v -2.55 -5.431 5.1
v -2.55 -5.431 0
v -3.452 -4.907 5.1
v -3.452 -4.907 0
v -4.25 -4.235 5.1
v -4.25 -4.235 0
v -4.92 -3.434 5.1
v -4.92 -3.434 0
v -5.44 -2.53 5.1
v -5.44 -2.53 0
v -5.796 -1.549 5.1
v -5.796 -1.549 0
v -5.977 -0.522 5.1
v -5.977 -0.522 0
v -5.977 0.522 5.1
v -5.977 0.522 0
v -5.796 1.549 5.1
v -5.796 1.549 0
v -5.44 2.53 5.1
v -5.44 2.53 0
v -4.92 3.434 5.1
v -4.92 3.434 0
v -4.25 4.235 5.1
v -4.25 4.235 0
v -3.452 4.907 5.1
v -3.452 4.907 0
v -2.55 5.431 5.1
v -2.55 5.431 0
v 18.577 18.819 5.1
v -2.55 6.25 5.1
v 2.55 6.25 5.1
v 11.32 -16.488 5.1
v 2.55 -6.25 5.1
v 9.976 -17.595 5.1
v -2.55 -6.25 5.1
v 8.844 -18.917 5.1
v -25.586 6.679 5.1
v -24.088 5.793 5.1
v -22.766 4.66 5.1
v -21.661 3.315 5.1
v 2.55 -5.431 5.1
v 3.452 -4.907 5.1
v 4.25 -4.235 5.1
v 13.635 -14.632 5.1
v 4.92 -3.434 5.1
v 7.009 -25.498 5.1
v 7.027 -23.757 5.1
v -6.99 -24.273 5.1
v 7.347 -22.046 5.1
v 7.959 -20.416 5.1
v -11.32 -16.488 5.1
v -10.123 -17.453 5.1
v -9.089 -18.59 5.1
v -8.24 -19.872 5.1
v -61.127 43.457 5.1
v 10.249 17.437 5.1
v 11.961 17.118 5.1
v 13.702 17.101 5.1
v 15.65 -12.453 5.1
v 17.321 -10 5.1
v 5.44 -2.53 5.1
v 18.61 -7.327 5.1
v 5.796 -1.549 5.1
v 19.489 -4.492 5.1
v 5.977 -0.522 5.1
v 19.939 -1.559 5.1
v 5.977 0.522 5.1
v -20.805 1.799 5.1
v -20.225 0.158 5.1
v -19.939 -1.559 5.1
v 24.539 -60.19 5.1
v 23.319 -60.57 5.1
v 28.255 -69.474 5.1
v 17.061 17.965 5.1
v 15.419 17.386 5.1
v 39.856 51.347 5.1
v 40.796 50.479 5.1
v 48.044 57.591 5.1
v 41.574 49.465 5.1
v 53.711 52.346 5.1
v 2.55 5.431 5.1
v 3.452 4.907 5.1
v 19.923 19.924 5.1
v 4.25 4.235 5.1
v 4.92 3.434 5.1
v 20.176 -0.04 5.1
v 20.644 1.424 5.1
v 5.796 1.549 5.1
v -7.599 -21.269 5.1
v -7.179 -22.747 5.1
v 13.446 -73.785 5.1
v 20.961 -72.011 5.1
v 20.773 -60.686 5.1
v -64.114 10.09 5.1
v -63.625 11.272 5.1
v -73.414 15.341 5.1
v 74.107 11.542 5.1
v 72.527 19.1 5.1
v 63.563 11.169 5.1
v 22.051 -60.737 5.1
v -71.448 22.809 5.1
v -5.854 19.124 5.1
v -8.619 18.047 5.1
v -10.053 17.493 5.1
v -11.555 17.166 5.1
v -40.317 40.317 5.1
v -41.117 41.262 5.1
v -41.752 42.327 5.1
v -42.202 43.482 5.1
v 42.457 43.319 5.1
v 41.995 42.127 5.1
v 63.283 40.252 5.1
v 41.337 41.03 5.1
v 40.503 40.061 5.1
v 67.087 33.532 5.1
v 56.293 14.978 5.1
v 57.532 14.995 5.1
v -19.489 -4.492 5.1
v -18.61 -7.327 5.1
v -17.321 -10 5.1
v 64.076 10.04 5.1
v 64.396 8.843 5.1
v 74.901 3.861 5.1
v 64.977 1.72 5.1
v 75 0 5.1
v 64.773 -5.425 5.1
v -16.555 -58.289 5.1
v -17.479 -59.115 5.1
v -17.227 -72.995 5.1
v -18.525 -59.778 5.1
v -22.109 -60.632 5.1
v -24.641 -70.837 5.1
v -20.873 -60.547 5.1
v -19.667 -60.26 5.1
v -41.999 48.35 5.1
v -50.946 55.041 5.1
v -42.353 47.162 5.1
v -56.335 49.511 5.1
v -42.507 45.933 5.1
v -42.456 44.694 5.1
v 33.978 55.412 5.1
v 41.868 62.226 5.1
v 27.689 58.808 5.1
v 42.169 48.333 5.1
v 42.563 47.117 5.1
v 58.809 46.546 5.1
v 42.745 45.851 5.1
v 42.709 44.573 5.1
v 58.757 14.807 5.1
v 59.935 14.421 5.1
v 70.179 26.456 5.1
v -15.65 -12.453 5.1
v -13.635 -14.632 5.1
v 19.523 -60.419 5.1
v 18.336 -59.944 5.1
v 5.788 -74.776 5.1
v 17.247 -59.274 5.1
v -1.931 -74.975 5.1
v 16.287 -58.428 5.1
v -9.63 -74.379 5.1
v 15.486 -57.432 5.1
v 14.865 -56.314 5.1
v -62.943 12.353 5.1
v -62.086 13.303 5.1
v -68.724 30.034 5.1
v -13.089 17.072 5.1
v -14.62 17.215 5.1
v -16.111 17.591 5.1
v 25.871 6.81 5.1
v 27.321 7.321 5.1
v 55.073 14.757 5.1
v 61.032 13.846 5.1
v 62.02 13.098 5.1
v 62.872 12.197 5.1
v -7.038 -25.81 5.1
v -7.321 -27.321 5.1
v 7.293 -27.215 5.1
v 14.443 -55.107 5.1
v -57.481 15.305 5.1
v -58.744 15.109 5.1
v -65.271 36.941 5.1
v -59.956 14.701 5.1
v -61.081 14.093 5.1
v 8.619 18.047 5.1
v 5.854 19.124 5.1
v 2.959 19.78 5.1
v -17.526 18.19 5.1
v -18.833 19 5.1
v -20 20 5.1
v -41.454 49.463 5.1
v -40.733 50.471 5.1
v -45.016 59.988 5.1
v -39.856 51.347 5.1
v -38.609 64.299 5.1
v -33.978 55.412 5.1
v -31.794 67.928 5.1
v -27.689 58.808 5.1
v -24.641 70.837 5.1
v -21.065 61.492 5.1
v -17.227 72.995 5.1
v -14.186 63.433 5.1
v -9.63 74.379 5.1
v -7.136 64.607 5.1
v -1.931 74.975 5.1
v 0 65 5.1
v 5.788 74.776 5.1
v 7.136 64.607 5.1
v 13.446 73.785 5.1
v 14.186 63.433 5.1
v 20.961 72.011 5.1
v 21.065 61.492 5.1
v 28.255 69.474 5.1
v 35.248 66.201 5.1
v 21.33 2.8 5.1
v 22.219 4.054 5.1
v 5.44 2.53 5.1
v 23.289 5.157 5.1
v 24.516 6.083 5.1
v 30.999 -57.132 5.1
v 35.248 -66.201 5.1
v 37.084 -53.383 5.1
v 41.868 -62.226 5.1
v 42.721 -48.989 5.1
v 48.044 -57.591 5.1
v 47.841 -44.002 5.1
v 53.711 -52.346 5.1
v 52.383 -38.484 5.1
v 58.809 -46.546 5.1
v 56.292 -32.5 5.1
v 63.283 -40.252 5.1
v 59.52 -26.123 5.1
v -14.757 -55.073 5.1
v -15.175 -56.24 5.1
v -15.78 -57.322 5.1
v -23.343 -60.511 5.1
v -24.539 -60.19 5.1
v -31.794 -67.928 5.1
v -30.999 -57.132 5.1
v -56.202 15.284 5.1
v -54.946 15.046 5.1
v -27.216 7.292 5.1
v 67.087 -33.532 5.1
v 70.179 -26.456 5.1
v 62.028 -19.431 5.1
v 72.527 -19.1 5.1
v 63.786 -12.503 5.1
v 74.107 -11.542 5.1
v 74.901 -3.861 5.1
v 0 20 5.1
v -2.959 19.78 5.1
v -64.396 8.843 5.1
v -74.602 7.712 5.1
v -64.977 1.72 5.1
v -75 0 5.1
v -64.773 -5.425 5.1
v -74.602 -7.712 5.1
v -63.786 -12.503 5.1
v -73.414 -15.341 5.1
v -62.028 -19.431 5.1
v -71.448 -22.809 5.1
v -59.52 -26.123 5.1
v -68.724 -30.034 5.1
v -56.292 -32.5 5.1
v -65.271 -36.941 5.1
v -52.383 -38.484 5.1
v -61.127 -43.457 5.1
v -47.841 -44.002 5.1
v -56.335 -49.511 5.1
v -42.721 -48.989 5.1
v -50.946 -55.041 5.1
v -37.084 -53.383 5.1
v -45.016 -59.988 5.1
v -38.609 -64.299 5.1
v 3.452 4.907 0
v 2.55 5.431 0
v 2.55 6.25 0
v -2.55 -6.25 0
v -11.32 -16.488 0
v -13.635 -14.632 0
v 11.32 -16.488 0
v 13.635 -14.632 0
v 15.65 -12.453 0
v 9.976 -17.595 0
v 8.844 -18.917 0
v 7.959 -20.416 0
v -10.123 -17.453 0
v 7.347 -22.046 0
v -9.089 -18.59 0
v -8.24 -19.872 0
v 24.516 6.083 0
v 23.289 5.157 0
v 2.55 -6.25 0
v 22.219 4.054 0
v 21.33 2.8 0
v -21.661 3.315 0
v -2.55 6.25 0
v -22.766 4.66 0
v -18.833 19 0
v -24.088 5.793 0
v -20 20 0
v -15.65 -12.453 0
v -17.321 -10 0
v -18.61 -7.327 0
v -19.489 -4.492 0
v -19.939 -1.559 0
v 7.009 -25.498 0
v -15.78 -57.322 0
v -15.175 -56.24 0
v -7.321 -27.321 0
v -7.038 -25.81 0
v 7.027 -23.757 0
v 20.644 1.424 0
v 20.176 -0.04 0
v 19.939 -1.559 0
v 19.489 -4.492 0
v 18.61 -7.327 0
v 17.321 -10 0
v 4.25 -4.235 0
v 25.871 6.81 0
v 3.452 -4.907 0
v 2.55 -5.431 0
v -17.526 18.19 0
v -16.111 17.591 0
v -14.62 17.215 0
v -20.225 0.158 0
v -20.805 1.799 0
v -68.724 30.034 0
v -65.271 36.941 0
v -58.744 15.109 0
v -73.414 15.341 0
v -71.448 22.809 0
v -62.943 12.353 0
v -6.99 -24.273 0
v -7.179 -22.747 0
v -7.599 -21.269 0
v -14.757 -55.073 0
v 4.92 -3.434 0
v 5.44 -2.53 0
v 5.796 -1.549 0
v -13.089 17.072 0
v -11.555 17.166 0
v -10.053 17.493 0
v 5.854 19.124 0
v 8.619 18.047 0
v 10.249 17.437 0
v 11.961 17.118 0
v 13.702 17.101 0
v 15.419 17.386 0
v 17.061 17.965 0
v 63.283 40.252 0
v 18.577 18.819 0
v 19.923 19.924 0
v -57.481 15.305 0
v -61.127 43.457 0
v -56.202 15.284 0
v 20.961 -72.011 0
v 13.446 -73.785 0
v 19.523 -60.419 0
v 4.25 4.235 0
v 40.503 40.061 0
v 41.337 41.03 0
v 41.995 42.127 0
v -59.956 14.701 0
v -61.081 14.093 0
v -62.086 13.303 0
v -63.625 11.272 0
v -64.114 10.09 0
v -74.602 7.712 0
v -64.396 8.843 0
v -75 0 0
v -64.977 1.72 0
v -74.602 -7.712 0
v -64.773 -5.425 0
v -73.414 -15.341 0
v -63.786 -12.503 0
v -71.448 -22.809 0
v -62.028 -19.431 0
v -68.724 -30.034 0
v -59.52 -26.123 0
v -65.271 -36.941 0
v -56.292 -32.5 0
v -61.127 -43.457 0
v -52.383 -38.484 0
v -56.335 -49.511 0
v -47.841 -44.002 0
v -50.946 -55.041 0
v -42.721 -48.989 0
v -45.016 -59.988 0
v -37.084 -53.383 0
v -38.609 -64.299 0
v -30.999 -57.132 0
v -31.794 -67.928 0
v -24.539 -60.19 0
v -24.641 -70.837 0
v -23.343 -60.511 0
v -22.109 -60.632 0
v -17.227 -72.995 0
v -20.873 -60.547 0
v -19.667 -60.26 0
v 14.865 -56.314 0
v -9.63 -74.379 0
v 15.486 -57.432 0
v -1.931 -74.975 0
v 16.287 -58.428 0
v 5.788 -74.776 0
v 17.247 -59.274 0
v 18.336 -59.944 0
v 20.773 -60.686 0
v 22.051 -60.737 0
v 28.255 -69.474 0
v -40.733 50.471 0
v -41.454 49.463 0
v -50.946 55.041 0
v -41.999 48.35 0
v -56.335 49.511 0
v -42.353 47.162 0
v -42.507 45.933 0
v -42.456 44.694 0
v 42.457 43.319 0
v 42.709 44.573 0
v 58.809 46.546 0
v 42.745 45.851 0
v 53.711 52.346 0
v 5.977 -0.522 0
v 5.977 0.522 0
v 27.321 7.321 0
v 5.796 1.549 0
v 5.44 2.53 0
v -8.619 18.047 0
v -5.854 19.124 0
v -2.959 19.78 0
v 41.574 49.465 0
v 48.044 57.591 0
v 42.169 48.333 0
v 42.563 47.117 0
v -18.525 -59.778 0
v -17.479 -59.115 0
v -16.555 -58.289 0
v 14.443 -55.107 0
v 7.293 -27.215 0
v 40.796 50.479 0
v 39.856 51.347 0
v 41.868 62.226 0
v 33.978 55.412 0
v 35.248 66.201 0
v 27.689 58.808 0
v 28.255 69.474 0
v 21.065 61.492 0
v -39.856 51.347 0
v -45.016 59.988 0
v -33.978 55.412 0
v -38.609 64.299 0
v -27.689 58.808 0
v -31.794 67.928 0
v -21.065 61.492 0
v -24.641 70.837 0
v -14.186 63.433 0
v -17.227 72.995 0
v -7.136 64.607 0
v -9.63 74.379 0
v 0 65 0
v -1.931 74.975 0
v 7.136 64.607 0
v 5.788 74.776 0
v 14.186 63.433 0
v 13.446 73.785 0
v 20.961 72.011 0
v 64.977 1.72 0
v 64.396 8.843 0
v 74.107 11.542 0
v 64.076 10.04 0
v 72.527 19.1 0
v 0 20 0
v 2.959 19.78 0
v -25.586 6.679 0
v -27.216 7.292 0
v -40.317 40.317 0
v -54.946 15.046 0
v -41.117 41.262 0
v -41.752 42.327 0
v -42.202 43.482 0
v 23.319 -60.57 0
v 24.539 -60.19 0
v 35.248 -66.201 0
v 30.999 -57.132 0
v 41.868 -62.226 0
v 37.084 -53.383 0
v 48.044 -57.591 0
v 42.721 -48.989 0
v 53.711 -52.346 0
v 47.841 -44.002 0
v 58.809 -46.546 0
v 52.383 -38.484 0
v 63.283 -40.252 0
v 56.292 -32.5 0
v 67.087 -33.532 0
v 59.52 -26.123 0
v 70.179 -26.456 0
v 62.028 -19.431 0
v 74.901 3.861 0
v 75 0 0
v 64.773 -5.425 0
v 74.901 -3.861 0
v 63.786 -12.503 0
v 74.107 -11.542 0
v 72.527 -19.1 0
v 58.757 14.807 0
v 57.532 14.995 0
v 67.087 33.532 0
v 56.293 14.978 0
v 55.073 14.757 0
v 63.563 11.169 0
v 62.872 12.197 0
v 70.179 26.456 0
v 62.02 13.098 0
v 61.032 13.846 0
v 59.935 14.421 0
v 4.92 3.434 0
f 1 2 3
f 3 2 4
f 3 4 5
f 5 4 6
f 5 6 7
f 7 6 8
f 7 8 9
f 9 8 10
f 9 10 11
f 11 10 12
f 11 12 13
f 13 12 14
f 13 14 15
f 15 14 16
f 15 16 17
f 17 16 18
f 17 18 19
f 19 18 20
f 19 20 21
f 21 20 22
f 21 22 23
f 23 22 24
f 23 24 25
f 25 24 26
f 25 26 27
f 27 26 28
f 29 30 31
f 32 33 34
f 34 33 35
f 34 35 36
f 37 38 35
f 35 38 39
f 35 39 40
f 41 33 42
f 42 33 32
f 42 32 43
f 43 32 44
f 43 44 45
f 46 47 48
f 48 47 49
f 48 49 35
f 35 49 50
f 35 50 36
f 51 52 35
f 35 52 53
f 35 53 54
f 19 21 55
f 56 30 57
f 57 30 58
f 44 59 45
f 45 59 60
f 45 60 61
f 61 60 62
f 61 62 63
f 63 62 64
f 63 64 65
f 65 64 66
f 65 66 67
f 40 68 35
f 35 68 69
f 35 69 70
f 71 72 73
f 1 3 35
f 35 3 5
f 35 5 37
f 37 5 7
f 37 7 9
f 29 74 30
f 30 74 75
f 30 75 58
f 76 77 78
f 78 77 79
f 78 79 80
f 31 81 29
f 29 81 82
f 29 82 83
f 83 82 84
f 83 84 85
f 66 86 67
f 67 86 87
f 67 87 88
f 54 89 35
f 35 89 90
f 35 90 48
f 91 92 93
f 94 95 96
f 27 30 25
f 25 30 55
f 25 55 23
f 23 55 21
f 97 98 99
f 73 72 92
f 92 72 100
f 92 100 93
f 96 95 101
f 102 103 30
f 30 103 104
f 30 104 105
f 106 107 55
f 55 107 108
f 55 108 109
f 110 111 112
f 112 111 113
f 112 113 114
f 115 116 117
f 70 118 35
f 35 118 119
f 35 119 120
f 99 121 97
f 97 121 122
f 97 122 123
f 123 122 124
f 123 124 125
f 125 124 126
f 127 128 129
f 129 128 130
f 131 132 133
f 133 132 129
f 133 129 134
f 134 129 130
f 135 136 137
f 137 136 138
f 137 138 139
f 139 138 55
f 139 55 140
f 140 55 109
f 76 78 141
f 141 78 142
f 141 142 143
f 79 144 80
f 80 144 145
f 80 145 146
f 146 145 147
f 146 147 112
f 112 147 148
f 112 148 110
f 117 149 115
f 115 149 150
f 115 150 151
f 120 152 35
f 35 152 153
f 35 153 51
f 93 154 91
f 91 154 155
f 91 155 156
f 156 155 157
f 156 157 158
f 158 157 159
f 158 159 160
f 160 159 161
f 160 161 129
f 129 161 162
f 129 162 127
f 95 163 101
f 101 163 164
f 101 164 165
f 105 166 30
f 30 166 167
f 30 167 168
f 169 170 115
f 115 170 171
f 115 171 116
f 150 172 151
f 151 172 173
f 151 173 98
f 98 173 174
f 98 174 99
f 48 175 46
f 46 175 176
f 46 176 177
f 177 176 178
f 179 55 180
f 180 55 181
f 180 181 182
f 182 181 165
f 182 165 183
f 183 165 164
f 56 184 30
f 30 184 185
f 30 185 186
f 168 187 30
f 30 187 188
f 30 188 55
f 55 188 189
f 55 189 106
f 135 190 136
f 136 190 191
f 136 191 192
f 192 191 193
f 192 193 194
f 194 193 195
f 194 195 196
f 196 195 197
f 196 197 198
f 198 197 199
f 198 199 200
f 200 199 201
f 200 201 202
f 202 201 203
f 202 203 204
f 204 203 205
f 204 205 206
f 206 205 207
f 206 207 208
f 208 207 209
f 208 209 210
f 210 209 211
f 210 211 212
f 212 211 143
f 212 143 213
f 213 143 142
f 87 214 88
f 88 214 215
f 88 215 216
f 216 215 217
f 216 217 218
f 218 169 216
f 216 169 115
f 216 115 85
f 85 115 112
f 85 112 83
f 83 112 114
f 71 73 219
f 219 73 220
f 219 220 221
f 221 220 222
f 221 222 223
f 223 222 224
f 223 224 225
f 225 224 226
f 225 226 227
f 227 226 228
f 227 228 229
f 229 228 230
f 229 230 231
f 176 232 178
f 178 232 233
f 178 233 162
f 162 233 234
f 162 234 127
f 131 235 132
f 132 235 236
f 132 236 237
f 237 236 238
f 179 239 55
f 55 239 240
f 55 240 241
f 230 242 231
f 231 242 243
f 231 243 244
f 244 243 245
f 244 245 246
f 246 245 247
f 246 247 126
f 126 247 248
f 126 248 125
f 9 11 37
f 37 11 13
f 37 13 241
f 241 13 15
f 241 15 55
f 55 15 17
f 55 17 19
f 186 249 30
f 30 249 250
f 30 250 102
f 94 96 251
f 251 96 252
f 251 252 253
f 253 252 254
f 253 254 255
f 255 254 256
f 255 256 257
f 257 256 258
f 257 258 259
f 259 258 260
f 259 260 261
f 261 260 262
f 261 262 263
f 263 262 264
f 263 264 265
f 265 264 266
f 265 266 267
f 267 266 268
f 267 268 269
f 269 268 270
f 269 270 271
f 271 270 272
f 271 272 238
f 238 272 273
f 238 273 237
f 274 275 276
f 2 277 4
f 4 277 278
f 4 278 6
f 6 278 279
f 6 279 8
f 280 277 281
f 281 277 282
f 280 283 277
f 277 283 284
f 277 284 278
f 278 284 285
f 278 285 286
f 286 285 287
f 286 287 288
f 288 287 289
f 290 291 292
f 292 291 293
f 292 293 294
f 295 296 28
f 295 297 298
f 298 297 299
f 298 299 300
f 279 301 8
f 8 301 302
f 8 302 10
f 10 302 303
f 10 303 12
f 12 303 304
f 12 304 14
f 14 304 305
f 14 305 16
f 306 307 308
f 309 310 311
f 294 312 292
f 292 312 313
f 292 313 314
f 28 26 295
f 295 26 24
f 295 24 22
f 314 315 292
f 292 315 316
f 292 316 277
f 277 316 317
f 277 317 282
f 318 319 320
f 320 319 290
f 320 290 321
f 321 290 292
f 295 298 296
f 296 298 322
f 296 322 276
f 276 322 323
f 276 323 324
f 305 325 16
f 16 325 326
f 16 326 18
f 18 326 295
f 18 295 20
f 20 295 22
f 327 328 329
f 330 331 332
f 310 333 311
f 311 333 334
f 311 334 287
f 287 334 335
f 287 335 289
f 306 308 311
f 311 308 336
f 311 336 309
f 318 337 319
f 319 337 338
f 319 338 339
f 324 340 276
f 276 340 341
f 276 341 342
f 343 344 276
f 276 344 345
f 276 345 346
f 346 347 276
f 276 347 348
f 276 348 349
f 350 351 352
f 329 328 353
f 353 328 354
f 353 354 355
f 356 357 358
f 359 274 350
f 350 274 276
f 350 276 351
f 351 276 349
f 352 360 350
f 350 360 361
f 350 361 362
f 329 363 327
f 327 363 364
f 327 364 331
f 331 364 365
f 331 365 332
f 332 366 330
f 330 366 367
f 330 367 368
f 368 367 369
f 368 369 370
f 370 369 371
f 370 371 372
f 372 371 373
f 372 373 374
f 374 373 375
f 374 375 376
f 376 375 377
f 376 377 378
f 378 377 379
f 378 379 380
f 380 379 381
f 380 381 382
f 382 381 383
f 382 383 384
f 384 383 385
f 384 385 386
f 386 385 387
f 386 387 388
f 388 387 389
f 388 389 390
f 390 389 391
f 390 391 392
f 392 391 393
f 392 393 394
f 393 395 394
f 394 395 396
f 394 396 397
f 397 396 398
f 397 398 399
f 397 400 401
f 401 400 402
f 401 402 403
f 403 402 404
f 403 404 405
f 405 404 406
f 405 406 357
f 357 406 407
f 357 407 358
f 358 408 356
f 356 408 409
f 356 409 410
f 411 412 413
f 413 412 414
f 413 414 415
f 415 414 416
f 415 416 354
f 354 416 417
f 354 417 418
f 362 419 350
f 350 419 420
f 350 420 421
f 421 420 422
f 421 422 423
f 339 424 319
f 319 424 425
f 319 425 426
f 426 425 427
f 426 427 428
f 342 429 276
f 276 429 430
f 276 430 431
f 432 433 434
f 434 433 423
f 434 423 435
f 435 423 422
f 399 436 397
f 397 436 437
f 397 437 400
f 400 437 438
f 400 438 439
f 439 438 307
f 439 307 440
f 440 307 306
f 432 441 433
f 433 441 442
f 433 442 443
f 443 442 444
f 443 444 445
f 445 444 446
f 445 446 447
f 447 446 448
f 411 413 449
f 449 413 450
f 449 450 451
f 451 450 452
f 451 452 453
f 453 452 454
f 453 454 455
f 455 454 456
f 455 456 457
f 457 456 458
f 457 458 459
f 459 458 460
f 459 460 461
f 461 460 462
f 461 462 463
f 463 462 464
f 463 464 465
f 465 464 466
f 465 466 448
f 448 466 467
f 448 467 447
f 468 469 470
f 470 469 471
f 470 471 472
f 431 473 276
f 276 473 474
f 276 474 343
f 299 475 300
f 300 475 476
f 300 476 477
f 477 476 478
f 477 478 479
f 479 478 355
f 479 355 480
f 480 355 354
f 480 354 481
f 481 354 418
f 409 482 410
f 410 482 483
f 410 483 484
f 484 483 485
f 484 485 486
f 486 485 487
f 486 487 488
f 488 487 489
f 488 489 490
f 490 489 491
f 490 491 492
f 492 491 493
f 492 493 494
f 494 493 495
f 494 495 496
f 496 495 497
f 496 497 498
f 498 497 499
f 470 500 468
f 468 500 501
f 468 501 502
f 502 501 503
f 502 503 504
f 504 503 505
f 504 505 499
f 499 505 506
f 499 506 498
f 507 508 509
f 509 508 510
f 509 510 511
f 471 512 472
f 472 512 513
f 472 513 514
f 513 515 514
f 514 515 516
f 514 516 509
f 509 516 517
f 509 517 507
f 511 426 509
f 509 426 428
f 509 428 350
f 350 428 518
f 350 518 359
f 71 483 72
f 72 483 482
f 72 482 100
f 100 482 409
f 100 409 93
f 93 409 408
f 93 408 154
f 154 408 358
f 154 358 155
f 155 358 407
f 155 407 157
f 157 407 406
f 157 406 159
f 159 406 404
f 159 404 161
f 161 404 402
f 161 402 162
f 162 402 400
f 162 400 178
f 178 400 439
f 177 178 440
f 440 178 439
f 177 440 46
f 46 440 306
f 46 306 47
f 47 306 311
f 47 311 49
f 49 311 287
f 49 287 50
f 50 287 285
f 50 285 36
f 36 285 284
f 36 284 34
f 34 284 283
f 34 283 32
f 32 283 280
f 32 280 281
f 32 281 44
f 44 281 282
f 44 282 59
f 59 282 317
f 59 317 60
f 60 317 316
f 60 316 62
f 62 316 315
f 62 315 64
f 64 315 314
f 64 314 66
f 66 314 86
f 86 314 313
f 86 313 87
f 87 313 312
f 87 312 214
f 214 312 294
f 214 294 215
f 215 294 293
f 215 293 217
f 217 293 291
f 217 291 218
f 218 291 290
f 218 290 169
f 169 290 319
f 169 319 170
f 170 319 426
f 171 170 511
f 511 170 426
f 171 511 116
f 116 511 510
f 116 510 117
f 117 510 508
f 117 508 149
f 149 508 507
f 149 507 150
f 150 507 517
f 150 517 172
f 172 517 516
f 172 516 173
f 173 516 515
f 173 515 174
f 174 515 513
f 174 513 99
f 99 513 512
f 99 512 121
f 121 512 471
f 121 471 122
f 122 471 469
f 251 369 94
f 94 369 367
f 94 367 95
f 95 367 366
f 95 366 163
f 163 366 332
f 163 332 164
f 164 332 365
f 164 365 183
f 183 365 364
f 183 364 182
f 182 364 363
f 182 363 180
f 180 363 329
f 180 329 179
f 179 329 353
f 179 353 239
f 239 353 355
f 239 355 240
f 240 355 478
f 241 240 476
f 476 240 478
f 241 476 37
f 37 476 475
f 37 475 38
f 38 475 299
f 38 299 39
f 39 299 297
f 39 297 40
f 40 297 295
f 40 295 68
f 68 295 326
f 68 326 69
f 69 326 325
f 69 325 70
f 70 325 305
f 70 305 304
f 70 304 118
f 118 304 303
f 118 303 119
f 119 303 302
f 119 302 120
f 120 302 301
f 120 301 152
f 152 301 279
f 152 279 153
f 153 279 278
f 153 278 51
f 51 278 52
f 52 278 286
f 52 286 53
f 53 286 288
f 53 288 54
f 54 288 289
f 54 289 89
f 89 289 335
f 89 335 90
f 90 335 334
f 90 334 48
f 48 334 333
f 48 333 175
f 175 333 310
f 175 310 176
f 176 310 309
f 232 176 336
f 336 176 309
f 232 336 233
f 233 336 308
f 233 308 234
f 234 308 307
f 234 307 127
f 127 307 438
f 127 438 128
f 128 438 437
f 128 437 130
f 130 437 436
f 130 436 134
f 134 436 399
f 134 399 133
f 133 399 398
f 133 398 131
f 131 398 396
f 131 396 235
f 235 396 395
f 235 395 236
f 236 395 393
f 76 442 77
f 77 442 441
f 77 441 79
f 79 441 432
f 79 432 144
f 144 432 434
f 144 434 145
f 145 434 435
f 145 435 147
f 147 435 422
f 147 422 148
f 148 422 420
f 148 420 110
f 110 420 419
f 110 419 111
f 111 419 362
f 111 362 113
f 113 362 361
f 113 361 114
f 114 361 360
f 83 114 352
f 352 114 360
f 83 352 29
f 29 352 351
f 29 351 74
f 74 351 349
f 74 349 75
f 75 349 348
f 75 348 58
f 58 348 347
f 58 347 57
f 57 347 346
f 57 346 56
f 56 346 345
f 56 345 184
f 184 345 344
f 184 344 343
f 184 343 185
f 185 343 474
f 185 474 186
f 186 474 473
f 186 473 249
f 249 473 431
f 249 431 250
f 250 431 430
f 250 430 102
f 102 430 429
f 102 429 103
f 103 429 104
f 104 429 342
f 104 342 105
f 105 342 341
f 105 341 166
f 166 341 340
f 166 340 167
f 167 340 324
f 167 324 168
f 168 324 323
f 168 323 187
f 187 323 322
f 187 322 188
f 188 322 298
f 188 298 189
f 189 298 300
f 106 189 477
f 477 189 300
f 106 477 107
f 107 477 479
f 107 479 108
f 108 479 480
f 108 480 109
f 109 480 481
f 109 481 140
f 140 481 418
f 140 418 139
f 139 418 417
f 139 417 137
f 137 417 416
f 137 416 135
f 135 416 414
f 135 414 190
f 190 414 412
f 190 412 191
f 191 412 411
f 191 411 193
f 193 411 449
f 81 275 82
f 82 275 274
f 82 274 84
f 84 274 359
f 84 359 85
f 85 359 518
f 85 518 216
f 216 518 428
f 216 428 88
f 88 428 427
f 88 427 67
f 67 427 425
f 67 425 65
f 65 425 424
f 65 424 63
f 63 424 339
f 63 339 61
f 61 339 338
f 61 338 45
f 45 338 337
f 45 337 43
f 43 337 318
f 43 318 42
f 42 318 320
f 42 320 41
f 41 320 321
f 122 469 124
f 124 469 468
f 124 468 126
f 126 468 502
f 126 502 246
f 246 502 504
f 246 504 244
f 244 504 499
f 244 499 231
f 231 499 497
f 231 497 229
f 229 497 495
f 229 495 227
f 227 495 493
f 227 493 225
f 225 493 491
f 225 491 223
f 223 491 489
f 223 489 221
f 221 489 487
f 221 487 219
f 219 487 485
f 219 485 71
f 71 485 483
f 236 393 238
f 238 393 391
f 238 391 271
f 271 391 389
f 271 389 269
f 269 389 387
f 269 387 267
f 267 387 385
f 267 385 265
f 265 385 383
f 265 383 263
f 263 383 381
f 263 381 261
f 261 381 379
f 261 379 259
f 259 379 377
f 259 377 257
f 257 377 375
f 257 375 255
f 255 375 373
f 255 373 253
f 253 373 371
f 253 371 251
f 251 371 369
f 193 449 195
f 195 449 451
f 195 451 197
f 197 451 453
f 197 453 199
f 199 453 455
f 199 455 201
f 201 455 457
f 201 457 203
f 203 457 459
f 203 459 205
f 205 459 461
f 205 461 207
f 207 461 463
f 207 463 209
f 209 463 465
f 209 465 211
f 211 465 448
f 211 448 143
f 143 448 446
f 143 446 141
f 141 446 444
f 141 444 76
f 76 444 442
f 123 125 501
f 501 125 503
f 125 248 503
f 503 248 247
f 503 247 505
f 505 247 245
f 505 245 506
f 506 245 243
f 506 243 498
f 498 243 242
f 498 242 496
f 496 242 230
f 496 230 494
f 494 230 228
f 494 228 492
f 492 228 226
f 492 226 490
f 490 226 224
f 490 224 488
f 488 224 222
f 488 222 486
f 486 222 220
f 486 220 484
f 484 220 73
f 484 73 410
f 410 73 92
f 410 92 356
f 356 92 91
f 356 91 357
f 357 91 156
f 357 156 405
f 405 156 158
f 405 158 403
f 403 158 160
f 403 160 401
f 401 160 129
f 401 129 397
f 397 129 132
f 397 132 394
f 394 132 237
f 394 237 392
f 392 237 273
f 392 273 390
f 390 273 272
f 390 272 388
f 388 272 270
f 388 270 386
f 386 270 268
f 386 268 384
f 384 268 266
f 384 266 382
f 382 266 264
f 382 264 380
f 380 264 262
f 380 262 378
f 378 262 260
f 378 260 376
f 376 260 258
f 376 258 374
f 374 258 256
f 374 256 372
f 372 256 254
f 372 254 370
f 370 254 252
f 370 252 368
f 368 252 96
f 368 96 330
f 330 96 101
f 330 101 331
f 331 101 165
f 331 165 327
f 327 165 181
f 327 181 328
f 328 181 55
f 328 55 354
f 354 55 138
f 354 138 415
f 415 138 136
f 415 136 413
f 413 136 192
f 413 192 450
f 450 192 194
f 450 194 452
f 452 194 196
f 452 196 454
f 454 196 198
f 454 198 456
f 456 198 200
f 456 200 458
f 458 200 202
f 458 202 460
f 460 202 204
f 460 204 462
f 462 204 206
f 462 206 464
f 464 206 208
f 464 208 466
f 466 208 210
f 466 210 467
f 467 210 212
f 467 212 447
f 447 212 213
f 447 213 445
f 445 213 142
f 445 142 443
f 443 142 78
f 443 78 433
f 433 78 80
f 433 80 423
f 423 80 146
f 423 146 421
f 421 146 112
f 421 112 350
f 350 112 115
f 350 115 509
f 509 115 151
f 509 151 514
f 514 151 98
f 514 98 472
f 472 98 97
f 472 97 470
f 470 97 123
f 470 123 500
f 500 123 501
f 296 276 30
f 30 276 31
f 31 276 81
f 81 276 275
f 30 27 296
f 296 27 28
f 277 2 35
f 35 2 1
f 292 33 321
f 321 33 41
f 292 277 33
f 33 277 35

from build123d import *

# Parameters (mm, degrees)
SKETCH1_R          = 75
SKETCH1_R_2        = 6
EXTRUSION1_DEPTH   = 5.1
CUT_EXTRUDE1_DEPTH = 107.188558706


with BuildPart() as part:
    # Sketch1 → Extrusion1 (new body)
    with BuildSketch(Plane.XY):
        Circle(SKETCH1_R)
        Circle(SKETCH1_R_2, mode=Mode.SUBTRACT)
        with BuildLine():
            ThreePointArc((40.502817464, 40.06150101), (42.745132776, 45.851099569), (39.856206804, 51.346691998))
            ThreePointArc((39.856206804, 51.346691998), (0, 65), (-39.856206804, 51.346691998))
            ThreePointArc((-39.856206804, 51.346691998), (-42.506769406, 45.932667816), (-40.316594862, 40.316594862))
            Line((-40.316594862, 40.316594862), (-20, 20))
            ThreePointArc((-20, 20), (-14.619951975, 17.215082215), (-8.619288125, 18.047378541))
            ThreePointArc((-8.619288125, 18.047378541), (0, 20), (8.619288125, 18.047378541))
            ThreePointArc((8.619288125, 18.047378541), (14.566416982, 17.206046598), (19.922803859, 19.923637571))
            Line((19.922803859, 19.923637571), (40.502817464, 40.06150101))
        make_face(mode=Mode.SUBTRACT)
        with BuildLine():
            ThreePointArc((-54.945686321, 15.045718344), (-61.080783406, 14.092821088), (-64.395643073, 8.843141592))
            ThreePointArc((-64.395643073, 8.843141592), (-56.291651246, -32.5), (-24.539436269, -60.18983359))
            ThreePointArc((-24.539436269, -60.18983359), (-18.525472489, -59.778276047), (-14.756897914, -55.073492776))
            Line((-14.756897914, -55.073492776), (-7.320508076, -27.320508076))
            ThreePointArc((-7.320508076, -27.320508076), (-7.598722539, -21.26879092), (-11.319844226, -16.48821175))
            ThreePointArc((-11.319844226, -16.48821175), (-17.320508076, -10), (-19.939132351, -1.559166791))
            ThreePointArc((-19.939132351, -1.559166791), (-22.184081943, 4.011863849), (-27.215778201, 7.291835471))
            Line((-27.215778201, 7.291835471), (-54.945686321, 15.045718344))
        make_face(mode=Mode.SUBTRACT)
        with BuildLine():
            ThreePointArc((14.442868856, -55.107219354), (18.33565063, -59.943920657), (24.539436269, -60.18983359))
            ThreePointArc((24.539436269, -60.18983359), (56.291651246, -32.5), (64.395643073, 8.843141592))
            ThreePointArc((64.395643073, 8.843141592), (61.032241895, 13.845608231), (55.073492776, 14.756897914))
            Line((55.073492776, 14.756897914), (27.320508076, 7.320508076))
            ThreePointArc((27.320508076, 7.320508076), (22.218674514, 4.053708705), (19.939132351, -1.559166791))
            ThreePointArc((19.939132351, -1.559166791), (17.320508076, -10), (11.319844226, -16.48821175))
            ThreePointArc((11.319844226, -16.48821175), (7.617664962, -21.217910447), (7.292974343, -27.215473042))
            Line((7.292974343, -27.215473042), (14.442868856, -55.107219354))
        make_face(mode=Mode.SUBTRACT)
    extrude(amount=EXTRUSION1_DEPTH)

    # Sketch2 → Cut-Extrude1 (cut, through all)
    with BuildSketch(Plane.XY.offset(5.1)):
        with BuildLine():
            ThreePointArc((-2.55, -5.431160097), (0, -6), (2.55, -5.431160097))
            Line((2.55, -5.431160097), (2.55, 5.431160097))
            ThreePointArc((2.55, 5.431160097), (0, 6), (-2.55, 5.431160097))
            Line((-2.55, 5.431160097), (-2.55, -5.431160097))
        make_face()
        with BuildLine():
            ThreePointArc((-2.55, 5.431160097), (0, 6), (2.55, 5.431160097))
            Line((2.55, 5.431160097), (2.55, 6.25))
            Line((2.55, 6.25), (-2.55, 6.25))
            Line((-2.55, 6.25), (-2.55, 5.431160097))
        make_face()
        with BuildLine():
            Line((-2.55, -6.25), (2.55, -6.25))
            Line((2.55, -6.25), (2.55, -5.431160097))
            ThreePointArc((2.55, -5.431160097), (0, -6), (-2.55, -5.431160097))
            Line((-2.55, -5.431160097), (-2.55, -6.25))
        make_face()
    extrude(amount=-CUT_EXTRUDE1_DEPTH, mode=Mode.SUBTRACT)


solid = part.part
